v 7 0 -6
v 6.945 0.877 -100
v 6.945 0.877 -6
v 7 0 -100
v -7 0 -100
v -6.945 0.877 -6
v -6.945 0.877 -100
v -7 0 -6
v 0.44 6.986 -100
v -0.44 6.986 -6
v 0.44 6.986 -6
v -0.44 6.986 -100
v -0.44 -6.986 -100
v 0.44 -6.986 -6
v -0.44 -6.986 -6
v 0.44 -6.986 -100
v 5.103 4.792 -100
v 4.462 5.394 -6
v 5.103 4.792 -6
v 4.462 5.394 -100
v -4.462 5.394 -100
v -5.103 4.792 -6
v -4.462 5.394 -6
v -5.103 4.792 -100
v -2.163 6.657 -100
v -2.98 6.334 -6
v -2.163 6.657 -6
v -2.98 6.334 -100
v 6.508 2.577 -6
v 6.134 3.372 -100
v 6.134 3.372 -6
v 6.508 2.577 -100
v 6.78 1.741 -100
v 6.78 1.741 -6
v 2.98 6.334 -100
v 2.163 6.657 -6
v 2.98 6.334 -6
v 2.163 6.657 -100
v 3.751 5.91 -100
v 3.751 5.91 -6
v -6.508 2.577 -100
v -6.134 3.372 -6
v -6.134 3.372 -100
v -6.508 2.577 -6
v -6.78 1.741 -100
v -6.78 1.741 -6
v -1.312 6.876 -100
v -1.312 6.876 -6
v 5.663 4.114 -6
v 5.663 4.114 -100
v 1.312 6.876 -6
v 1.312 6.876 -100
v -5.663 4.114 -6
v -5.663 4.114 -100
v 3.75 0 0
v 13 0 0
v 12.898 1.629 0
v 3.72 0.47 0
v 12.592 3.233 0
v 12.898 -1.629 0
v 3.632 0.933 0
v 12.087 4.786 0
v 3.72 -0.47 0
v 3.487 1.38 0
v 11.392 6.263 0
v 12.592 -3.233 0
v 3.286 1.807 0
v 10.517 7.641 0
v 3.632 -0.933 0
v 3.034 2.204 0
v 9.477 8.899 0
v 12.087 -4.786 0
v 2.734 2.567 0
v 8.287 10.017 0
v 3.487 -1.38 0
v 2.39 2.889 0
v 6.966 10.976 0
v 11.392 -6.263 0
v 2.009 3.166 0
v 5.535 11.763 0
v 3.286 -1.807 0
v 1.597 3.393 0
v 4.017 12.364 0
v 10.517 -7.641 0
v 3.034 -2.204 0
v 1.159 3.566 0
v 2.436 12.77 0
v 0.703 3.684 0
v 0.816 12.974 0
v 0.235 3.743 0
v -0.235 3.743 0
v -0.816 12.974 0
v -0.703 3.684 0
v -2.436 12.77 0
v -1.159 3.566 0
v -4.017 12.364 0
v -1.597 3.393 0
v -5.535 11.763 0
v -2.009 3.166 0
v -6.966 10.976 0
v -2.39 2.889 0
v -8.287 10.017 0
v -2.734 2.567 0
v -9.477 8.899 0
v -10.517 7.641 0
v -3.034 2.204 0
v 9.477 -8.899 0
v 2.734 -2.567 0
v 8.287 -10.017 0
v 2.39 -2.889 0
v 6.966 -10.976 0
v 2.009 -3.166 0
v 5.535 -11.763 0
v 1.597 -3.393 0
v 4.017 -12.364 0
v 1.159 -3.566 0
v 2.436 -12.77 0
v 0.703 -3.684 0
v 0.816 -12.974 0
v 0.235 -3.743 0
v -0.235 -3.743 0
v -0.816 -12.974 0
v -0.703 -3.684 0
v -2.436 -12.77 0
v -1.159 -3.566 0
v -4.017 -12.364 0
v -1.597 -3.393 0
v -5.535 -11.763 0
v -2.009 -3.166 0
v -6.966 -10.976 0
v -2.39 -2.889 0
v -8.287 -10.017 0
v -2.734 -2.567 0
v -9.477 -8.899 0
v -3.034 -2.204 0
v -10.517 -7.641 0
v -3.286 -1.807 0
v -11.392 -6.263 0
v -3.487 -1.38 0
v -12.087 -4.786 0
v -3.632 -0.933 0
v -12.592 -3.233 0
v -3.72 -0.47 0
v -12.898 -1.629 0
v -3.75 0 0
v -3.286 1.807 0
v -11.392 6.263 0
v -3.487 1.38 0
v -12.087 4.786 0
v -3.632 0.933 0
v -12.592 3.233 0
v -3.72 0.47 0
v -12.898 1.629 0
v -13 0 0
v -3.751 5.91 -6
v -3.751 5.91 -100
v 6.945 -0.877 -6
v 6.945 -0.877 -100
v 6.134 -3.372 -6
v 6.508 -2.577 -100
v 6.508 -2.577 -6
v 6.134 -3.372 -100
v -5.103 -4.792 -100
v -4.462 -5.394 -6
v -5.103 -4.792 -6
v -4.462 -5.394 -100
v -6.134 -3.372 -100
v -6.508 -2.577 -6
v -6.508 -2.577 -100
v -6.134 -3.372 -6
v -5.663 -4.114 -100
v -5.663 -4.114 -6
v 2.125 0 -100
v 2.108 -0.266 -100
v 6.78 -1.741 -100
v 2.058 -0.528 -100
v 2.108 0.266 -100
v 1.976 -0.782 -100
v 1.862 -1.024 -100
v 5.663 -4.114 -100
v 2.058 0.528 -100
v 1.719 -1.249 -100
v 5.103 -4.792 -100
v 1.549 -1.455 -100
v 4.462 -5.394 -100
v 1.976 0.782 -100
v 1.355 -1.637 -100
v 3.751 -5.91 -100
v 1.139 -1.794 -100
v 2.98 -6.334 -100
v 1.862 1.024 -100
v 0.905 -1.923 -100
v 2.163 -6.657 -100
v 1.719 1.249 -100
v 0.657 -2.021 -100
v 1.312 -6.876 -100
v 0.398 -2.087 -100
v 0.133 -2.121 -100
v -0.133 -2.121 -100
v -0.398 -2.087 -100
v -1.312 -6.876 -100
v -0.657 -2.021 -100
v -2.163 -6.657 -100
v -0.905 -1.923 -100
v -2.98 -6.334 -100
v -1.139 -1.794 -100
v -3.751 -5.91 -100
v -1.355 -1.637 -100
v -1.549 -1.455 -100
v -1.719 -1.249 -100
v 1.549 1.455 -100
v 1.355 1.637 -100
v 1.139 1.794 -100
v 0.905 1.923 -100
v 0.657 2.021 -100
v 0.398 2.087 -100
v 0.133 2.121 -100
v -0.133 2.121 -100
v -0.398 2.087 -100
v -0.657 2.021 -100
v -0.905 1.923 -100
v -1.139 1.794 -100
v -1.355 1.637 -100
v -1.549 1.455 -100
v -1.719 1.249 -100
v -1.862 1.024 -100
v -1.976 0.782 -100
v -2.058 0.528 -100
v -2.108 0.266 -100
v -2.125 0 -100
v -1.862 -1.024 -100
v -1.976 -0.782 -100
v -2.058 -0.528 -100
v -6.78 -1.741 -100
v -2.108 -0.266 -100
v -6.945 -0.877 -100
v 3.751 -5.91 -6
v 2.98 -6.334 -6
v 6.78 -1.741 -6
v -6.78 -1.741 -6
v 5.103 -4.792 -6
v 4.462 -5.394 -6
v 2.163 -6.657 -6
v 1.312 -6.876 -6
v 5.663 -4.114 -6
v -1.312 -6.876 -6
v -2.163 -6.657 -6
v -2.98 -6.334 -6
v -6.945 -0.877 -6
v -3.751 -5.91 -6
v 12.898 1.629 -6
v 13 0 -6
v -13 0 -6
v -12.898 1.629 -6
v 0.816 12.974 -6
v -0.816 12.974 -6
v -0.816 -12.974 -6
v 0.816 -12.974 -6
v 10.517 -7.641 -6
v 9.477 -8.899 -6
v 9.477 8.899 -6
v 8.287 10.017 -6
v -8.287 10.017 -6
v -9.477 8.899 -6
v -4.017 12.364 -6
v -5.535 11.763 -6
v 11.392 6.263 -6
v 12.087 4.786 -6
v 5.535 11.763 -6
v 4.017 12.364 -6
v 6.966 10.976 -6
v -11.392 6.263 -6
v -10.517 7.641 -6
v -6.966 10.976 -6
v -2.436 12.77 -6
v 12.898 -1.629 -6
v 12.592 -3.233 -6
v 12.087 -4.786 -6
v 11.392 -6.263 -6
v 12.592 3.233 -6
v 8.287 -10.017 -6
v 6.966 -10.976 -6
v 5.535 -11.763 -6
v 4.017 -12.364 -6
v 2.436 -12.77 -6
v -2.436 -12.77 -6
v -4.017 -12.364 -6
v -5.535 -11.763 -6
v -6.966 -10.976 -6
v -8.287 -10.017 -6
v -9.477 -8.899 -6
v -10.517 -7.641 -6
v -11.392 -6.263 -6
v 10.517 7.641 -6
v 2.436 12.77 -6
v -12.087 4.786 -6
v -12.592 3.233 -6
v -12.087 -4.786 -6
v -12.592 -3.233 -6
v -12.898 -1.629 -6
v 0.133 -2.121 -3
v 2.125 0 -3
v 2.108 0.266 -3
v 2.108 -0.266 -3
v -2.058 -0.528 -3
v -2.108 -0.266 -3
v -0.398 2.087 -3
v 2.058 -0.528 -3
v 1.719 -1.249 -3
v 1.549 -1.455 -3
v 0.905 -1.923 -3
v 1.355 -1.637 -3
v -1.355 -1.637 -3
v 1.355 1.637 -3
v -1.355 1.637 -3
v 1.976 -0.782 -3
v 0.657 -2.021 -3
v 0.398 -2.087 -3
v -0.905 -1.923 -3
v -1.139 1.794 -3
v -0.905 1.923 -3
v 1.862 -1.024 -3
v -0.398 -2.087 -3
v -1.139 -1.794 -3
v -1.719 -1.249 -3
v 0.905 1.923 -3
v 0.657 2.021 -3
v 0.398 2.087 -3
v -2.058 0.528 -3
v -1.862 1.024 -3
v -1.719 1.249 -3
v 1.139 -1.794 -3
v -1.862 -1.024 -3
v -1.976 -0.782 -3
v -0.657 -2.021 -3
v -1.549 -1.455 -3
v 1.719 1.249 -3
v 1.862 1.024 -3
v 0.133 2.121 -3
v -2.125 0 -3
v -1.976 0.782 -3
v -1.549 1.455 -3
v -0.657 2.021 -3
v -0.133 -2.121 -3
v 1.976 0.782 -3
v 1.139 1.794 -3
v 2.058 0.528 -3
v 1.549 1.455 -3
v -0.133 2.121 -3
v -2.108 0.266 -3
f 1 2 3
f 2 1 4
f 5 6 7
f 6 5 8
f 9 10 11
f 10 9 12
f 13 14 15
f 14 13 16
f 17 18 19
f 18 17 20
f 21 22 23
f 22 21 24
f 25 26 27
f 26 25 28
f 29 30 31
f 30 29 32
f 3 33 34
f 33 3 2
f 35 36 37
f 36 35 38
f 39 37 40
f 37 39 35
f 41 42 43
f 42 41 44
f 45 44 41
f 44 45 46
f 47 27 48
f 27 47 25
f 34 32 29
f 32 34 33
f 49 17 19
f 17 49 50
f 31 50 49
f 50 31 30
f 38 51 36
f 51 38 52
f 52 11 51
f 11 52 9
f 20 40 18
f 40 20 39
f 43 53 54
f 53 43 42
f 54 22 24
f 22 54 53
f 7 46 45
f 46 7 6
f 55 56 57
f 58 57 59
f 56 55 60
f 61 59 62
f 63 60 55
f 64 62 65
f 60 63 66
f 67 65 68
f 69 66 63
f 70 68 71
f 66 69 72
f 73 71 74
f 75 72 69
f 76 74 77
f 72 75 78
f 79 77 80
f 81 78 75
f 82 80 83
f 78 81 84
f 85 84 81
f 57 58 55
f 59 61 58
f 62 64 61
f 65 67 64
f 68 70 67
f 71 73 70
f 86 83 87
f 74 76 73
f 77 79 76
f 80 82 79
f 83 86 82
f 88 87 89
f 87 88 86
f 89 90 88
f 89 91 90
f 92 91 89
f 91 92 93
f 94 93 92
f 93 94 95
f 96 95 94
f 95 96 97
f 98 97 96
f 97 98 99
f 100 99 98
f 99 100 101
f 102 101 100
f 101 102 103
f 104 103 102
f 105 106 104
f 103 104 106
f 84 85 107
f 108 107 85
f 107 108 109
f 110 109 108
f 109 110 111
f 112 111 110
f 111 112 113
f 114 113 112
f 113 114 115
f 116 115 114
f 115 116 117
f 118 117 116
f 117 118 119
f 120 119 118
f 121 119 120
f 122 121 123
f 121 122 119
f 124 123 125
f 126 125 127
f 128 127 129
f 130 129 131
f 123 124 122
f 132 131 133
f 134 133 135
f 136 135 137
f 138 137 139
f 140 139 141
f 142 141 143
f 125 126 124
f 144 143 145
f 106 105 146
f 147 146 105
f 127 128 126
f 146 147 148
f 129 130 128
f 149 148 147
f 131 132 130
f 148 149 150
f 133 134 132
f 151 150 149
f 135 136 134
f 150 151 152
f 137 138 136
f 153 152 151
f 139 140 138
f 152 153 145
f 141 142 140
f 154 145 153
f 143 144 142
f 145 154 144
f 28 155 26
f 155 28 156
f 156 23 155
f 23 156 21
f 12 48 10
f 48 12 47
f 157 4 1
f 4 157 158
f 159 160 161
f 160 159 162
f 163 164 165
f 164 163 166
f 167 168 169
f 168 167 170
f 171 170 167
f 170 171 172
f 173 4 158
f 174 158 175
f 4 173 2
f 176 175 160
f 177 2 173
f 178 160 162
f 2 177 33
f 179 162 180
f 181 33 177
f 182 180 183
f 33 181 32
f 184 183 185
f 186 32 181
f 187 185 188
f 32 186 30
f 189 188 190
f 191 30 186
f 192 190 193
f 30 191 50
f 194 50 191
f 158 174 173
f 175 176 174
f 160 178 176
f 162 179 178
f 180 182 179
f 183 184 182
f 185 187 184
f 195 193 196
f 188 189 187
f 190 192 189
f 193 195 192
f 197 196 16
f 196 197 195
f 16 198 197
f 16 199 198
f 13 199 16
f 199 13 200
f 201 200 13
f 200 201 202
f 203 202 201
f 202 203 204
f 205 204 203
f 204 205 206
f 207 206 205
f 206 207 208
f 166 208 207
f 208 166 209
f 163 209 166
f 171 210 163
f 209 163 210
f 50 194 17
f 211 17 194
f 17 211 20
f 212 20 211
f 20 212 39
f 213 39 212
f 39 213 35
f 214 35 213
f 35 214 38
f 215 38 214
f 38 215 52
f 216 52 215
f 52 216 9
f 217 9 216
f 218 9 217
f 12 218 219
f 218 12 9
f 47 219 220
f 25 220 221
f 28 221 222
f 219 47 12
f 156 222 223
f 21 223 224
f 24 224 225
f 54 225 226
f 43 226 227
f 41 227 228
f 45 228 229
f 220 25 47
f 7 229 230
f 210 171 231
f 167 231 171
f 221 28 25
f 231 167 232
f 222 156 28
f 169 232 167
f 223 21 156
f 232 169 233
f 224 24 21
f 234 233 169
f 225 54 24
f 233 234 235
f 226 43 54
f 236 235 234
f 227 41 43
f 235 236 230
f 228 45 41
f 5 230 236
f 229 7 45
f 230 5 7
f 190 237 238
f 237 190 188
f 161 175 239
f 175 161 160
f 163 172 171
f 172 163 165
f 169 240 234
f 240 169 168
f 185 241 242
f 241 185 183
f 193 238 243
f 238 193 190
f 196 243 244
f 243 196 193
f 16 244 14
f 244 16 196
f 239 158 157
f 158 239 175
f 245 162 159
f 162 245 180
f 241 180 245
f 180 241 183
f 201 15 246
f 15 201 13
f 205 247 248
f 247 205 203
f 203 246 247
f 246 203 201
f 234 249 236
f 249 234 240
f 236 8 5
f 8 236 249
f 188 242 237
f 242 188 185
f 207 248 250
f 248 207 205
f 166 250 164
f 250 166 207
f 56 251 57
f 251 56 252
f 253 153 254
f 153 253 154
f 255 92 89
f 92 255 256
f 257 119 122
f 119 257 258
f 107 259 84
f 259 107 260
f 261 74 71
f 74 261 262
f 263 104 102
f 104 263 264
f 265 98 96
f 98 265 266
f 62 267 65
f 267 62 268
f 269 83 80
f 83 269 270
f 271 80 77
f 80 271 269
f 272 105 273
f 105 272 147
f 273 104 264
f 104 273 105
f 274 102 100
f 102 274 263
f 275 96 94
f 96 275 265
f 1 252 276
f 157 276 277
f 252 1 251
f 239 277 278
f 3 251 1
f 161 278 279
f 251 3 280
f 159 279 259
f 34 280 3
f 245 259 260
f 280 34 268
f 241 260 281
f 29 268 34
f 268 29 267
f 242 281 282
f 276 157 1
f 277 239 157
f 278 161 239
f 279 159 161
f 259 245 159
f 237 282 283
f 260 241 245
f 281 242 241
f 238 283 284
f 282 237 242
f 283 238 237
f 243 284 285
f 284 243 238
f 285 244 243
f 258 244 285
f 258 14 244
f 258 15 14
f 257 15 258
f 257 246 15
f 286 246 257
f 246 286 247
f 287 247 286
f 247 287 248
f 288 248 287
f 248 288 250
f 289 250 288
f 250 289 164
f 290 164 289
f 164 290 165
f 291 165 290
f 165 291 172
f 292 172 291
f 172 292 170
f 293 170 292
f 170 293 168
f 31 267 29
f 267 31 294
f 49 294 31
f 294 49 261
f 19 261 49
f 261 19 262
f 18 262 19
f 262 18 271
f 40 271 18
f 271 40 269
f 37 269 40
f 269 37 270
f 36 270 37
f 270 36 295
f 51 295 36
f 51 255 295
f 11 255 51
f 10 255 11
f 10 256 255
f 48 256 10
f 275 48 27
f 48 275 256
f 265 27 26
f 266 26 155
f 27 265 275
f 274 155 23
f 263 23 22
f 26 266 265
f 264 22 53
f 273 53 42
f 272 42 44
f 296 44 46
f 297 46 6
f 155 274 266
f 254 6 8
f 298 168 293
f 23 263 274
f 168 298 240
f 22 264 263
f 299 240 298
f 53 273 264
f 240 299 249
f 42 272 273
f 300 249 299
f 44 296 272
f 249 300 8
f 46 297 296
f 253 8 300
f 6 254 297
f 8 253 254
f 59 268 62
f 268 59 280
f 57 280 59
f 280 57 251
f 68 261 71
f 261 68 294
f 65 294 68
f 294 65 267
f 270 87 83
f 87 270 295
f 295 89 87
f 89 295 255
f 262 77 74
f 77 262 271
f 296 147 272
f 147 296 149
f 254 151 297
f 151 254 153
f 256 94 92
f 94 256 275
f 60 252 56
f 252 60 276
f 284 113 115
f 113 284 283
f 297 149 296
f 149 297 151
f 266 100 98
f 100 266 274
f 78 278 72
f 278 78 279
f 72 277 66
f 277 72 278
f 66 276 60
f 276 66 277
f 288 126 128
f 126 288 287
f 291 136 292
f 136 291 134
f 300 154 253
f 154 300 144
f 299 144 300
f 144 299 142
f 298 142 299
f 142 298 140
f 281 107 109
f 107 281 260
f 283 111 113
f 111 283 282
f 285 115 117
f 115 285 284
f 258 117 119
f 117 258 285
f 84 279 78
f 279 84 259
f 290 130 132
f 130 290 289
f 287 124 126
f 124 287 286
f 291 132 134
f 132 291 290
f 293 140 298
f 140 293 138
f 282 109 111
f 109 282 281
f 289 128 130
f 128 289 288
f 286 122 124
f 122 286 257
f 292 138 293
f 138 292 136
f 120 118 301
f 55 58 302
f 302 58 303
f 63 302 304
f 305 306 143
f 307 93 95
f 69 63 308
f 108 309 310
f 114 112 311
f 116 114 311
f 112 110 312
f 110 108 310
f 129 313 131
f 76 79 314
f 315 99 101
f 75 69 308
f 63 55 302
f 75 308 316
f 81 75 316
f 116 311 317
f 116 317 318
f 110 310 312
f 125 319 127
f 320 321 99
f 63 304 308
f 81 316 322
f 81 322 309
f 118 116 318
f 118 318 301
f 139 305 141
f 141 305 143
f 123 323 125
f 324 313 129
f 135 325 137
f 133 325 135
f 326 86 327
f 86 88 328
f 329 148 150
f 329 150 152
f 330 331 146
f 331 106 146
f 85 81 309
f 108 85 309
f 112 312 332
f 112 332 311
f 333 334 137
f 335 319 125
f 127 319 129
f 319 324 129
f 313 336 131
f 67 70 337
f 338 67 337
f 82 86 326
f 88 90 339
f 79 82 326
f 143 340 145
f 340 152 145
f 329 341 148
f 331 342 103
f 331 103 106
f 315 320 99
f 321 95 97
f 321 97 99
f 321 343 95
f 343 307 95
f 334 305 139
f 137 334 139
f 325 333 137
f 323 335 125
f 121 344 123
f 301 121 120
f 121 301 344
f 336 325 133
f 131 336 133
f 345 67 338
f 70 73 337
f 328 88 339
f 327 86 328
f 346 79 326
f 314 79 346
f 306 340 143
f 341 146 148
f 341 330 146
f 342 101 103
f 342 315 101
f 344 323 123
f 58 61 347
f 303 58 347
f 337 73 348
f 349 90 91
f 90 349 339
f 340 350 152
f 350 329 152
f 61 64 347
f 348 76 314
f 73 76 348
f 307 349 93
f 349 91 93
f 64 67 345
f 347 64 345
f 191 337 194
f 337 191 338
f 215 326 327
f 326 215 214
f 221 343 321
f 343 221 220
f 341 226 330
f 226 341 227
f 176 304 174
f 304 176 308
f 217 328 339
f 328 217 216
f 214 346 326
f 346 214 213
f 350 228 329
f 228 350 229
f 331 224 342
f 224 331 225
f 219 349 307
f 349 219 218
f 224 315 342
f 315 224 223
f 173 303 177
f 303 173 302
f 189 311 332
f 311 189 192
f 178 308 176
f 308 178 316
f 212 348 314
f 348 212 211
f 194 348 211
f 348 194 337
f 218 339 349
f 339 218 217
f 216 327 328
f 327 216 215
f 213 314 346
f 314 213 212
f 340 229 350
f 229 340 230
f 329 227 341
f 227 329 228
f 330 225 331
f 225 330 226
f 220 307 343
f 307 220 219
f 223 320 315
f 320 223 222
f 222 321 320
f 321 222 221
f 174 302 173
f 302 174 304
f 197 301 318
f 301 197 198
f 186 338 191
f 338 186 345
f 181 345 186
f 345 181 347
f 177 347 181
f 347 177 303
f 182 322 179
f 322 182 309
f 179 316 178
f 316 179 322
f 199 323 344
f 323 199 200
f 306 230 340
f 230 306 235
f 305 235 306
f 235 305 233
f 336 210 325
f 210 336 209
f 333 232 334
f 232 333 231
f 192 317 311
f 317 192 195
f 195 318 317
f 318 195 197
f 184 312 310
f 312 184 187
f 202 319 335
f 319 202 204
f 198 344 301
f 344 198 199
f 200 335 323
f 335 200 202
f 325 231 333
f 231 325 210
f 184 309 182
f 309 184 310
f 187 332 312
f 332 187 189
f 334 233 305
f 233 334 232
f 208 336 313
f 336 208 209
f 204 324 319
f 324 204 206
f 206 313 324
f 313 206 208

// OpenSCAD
$fn = 50;


difference() {
	union() {
		translate(v = [0, 0, -100.0000000000]) {
			cylinder(h = 100, r = 7.0000000000);
		}
		translate(v = [0, 0, -6.0000000000]) {
			cylinder(h = 6, r = 13.0000000000);
		}
	}
	union() {
		translate(v = [0, 0, 0]) {
			rotate(a = [0, 0, 0]) {
				difference() {
					union() {
						#translate(v = [0, 0, -100.0000000000]) {
							cylinder(h = 100, r = 2.0000000000);
						}
						#translate(v = [0, 0, -3]) {
							cylinder(h = 3, r = 7.0000000000, r1 = 2.1250000000, r2 = 3.7500000000);
						}
						#translate(v = [0, 0, -100.0000000000]) {
							cylinder(h = 100, r = 2.1250000000);
						}
						#translate(v = [0, 0, -100.0000000000]) {
							cylinder(h = 100, r = 2.0000000000);
						}
					}
					union();
				}
			}
		}
	}
}
